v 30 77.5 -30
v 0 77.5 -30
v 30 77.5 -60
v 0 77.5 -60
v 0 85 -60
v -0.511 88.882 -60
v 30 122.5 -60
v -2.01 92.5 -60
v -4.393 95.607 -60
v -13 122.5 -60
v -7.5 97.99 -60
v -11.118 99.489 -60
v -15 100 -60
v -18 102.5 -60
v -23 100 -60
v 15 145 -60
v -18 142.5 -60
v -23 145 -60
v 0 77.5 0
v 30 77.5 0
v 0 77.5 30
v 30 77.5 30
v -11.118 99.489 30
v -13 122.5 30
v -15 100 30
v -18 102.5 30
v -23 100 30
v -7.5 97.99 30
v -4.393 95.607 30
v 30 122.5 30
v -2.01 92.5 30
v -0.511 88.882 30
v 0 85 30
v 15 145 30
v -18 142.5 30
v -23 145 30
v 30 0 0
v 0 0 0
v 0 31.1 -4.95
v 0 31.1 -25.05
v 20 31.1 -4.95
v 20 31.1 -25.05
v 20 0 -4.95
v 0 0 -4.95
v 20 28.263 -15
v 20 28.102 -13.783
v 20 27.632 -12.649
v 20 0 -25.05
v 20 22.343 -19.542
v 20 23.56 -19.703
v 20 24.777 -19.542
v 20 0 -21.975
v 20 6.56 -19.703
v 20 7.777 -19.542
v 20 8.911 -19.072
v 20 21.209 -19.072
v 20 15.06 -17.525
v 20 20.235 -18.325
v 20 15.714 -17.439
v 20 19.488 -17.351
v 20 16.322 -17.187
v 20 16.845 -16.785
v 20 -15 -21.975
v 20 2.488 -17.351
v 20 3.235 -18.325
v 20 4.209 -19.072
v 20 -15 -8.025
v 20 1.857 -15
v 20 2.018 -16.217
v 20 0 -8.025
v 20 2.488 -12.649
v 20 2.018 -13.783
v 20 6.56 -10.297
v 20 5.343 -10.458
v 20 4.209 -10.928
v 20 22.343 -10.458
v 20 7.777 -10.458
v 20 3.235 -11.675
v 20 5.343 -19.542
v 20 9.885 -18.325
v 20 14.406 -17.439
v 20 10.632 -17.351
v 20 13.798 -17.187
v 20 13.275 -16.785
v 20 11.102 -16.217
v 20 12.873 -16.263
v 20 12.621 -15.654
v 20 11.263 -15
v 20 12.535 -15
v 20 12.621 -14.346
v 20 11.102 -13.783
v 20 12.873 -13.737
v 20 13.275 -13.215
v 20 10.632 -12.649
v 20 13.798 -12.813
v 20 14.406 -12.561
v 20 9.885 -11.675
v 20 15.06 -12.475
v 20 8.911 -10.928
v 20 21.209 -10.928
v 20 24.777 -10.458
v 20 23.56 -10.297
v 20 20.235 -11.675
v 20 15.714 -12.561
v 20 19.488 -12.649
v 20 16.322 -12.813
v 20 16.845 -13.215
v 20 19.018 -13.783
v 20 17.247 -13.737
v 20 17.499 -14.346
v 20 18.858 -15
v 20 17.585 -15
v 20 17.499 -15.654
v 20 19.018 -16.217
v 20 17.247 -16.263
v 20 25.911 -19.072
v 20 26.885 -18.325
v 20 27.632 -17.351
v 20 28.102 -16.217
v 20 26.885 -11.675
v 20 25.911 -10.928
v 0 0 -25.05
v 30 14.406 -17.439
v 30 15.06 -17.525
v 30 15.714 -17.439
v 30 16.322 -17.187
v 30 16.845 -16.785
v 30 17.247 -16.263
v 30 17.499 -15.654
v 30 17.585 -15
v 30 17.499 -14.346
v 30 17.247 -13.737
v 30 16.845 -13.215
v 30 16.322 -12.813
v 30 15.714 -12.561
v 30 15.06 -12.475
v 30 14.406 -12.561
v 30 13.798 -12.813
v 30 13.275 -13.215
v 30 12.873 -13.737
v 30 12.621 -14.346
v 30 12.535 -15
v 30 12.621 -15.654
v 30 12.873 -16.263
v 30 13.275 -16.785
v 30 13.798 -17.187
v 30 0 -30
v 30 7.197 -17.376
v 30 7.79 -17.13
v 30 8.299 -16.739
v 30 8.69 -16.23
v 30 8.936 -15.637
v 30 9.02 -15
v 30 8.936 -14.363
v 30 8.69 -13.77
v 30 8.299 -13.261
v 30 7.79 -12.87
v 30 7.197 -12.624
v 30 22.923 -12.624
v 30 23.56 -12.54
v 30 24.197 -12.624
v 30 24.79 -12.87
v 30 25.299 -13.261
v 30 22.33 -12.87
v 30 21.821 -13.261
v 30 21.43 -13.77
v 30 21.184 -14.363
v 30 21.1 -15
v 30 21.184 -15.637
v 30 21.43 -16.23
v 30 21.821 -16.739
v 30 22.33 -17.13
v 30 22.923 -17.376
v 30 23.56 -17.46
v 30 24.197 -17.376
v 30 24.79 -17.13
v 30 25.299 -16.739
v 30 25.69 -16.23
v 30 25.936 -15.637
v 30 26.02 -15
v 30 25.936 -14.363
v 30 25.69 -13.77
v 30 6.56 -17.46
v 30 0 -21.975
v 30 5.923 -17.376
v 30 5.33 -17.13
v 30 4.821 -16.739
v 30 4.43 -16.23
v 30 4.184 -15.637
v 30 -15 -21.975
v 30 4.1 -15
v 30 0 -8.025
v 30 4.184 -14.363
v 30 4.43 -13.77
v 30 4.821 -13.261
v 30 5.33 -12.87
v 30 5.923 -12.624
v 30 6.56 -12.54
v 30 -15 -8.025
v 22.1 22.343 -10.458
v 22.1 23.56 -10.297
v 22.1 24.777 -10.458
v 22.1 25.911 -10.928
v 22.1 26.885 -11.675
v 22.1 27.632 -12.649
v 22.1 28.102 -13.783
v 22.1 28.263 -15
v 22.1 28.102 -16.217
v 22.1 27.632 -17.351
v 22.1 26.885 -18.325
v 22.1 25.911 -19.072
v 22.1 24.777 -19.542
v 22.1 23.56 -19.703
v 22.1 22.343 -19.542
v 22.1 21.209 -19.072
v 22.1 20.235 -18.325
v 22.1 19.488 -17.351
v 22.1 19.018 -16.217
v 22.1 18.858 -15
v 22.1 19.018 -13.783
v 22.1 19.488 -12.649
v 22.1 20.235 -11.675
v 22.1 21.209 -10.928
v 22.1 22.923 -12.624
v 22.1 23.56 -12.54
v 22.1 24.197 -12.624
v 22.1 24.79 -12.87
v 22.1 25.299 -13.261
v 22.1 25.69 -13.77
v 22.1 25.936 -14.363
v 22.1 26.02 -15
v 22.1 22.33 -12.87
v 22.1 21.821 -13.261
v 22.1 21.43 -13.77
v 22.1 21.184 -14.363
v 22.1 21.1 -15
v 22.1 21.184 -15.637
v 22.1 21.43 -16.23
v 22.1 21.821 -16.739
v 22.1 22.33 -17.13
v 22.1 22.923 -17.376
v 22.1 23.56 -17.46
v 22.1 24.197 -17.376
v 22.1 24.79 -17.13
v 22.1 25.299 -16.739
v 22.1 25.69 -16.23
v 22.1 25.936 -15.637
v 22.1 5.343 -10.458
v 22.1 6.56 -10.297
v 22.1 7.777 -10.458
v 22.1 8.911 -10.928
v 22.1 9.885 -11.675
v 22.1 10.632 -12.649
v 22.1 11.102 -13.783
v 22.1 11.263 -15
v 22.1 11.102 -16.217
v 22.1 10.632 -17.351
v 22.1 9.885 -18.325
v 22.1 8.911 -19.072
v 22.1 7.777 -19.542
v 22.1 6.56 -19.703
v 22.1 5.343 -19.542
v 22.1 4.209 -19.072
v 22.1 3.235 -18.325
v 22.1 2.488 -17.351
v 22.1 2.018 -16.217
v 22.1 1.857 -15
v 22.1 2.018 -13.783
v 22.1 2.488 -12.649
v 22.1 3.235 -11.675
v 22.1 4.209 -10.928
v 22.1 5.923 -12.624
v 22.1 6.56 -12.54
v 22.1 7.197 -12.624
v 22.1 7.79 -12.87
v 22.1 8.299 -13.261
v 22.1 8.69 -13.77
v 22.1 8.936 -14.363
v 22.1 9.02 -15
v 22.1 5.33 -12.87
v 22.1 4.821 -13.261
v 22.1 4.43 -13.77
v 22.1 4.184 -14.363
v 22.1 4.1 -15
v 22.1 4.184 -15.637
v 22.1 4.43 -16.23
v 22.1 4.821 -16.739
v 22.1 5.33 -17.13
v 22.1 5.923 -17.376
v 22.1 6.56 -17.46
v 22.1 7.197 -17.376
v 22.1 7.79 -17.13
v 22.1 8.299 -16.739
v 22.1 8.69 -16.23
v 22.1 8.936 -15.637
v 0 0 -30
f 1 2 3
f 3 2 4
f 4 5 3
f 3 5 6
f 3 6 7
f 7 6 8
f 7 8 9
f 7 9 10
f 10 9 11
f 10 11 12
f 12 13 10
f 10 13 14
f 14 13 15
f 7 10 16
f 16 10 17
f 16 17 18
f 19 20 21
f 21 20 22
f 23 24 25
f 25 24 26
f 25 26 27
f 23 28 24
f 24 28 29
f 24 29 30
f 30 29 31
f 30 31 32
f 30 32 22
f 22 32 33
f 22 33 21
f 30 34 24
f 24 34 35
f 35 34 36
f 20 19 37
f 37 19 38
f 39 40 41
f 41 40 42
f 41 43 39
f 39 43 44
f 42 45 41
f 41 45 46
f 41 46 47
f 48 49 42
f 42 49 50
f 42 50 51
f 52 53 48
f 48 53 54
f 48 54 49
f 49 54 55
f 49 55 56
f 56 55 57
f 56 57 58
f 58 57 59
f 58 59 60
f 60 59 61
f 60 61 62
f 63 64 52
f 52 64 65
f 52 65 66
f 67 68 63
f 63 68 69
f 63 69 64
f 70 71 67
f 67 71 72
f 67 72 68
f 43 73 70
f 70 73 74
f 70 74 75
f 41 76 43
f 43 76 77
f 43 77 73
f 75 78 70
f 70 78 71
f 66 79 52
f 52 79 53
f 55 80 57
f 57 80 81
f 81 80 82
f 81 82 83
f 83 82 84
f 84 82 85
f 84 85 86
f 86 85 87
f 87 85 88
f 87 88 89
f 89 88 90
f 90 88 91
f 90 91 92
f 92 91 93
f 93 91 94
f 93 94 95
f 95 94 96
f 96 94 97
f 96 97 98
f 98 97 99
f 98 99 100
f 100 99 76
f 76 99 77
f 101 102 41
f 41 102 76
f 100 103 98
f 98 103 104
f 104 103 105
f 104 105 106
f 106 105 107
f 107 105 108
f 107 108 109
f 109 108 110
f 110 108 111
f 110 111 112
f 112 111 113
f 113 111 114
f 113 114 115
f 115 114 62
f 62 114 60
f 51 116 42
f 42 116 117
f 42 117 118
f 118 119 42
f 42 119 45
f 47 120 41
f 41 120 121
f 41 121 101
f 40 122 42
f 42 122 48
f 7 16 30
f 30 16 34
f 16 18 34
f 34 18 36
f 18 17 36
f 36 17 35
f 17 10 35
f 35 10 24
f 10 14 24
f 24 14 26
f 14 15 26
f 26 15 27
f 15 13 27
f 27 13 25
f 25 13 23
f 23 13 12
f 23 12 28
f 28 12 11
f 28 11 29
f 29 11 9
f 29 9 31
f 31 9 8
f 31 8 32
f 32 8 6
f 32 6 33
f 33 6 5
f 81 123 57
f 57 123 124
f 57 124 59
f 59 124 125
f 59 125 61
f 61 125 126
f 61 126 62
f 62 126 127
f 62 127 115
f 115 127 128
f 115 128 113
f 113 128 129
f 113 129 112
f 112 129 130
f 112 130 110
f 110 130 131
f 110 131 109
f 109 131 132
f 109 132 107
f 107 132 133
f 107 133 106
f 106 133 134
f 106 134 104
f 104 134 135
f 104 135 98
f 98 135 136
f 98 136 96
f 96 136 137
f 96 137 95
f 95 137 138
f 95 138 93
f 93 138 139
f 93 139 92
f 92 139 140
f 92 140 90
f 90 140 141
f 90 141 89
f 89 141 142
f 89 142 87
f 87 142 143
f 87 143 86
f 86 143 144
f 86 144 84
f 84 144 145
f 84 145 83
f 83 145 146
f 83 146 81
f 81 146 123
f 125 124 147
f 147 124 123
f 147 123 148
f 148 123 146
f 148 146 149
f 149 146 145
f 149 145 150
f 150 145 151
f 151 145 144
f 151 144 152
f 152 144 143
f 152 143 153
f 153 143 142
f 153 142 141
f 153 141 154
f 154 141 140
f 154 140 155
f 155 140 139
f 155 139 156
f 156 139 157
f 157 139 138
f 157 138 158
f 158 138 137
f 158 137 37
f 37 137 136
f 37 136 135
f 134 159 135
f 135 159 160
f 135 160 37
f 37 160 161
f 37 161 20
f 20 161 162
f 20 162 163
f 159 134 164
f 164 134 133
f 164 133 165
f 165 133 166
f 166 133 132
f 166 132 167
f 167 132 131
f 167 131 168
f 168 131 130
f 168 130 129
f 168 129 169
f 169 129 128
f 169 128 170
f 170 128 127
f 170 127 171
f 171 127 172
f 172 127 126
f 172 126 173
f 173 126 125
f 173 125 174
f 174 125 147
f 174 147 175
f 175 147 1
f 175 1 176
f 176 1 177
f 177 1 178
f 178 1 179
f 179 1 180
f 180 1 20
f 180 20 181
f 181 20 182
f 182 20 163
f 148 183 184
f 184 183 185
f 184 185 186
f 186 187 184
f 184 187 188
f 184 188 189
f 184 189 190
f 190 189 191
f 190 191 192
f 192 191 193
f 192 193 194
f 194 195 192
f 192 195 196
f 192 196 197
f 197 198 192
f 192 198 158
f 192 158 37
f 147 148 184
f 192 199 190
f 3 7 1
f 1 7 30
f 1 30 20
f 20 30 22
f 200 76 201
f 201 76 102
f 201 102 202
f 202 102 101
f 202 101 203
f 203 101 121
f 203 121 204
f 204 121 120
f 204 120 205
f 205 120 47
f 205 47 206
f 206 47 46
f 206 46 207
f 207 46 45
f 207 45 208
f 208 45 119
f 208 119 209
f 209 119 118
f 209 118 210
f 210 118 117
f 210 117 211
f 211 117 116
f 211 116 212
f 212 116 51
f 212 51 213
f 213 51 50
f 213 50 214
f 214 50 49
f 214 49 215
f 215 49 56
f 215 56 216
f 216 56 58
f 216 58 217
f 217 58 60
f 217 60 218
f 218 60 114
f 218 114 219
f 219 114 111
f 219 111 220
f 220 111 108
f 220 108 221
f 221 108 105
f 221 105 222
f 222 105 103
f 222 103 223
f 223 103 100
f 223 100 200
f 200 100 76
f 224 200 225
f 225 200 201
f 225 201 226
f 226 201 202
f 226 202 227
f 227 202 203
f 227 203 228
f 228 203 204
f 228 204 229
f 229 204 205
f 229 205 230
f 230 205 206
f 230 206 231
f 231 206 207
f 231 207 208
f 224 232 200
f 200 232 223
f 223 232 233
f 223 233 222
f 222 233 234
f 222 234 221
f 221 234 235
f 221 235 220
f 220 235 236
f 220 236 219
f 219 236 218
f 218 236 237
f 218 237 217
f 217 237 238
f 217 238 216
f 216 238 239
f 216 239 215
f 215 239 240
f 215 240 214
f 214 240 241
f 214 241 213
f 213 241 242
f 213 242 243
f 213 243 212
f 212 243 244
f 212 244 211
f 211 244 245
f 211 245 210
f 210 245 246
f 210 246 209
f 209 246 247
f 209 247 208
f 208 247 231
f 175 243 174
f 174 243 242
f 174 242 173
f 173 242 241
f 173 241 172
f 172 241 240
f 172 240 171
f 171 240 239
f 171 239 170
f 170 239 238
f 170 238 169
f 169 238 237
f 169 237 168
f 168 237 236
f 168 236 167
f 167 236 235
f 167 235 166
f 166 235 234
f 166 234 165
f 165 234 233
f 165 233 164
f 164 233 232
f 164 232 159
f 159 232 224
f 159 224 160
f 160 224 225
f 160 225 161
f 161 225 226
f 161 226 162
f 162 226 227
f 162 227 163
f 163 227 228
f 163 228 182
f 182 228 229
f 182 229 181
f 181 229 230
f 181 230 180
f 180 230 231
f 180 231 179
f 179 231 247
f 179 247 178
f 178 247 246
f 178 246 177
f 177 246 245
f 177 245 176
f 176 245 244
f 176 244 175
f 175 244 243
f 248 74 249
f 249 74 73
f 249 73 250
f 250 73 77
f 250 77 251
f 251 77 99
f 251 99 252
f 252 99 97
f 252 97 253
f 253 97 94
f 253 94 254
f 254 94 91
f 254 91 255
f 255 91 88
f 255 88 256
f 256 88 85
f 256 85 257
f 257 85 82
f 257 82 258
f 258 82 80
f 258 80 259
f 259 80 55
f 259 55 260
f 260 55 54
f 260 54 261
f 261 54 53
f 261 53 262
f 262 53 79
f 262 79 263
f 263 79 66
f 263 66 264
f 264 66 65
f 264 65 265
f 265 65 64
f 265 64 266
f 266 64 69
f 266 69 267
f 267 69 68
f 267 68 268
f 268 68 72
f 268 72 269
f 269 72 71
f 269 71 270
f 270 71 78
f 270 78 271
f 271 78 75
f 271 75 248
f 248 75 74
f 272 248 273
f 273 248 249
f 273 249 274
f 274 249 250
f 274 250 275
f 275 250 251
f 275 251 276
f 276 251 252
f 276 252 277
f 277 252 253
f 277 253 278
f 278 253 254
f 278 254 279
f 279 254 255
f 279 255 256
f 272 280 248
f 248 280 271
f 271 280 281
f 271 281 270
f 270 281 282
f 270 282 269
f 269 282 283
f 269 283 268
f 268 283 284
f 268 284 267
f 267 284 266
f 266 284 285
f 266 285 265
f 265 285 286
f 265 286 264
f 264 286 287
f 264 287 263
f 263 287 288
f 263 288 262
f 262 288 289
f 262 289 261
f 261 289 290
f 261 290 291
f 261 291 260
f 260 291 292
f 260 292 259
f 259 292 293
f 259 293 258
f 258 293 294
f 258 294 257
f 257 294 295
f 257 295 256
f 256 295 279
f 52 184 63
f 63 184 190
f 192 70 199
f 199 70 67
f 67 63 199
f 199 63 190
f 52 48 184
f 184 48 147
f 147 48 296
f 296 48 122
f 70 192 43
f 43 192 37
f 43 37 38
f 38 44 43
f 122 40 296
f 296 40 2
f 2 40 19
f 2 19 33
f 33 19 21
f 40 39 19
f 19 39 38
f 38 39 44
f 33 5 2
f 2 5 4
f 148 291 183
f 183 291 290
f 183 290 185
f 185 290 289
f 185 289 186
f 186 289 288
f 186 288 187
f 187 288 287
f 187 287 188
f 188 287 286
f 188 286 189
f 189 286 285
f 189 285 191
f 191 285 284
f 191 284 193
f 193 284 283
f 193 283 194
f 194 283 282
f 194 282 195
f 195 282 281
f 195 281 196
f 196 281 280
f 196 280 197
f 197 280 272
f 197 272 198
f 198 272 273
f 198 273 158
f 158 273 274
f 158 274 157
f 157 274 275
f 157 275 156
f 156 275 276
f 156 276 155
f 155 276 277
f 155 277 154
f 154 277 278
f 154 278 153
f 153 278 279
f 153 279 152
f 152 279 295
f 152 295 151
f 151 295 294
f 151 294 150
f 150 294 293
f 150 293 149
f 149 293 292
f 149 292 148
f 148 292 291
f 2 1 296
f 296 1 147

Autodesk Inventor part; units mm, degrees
ref_plane "YZ Plane" through (0, 0, 0) normal (1, 0, 0) x (0, 1, 0)
ref_plane "XZ Plane" through (0, 0, 0) normal (0, 1, 0) x (-1, 0, 0)
sketch "Sketch1" plane through (0, 0, 0) normal (0, 0, 1) x (1, 0, 0)
  line L0 (0, 0) -> (25, 0)
  line L1 (25, 0) -> (25, 40)
  line L2 (25, 40) -> (0, 40)
  line L3 (0, 40) -> (0, 0)
  dimension "d1" = 25
  dimension "d2" = 40
  dimension "d3" = 25
extrude "Extrusion1" add sketch "Sketch1" against normal blind 30
sketch "Sketch2" plane through (25, 0, 0) normal (1, 0, 0) x (0, 0, -1)
  line L0 (0, 0) -> (30, 0) projected
  circle A0 centre (15, 6.56) radius 2.46
extrude "Extrusion2" cut sketch "Sketch2" against normal blind 30
sketch "Sketch3" plane through (0, 0, 0) normal (-1, 0, 0) x (0, 0, 1)
  line L0 (0, 0) -> (-30, 0) projected
  line L1 (-25.05, 0) -> (-4.95, 0)
  line L2 (-4.95, 0) -> (-4.95, 33.12)
  line L3 (-4.95, 33.12) -> (-25.05, 33.12)
  line L4 (-25.05, 33.12) -> (-25.05, 0)
  dimension "d11" = 20.1
extrude "Extrusion3" cut sketch "Sketch3" against normal blind 20
sketch "Sketch4" plane through (0, 0, 0) normal (0, -1, 0) x (1, 0, 0)
  line L0 (20, -4.95) -> (20, -25.05) projected
  line L1 (20, -15) -> (25, -15)
  line L2 (25, 0) -> (25, -30) projected
  line L3 (20, -8.025) -> (25, -8.025)
  line L4 (25, -8.025) -> (25, -21.975)
  line L5 (25, -21.975) -> (20, -21.975)
  line L6 (20, -21.975) -> (20, -8.025)
  line L7 (20, -8.025) -> (25, -21.975) construction
  line L8 (25, -8.025) -> (20, -21.975) construction
  line L9 (25, -12.54) -> (25, -17.46) projected
  point P0 (0, 0)
  point P1 (22.5, -15)
  dimension "d14" = 13.95
extrude "Extrusion4" add sketch "Sketch4" along normal blind 15
sketch "Sketch5" plane through (20, 0, 0) normal (-1, 0, 0) x (0, 0, 1)
  circle A0 centre (-15, 6.56) radius 2.46 projected
  circle A1 centre (-15, 6.56) radius 4.7025
  circle A2 centre (-15, 6.56) radius 2.46 projected
  circle A3 centre (-15, 6.56) radius 2.46
  point P0 (0, 0)
  dimension "d17" = 9.405
extrude "Extrusion5" cut sketch "Sketch5" against normal blind 2.1
sketch "Sketch6" plane through (25, 0, 0) normal (1, 0, 0) x (0, 0, -1)
  circle A0 centre (15, 6.56) radius 4.7025 projected
  line L0 (15, 6.56) -> (15, 23.56)
  circle A1 centre (15, 23.56) radius 2.46
  point P0 (0, 0)
  dimension "d20" = 17
  dimension "d21" = 4.92
extrude "Extrusion6" cut sketch "Sketch6" against normal blind 10 contours A1
sketch "Sketch7" plane through (20, 0, 0) normal (-1, 0, 0) x (0, 0, 1)
  circle A0 centre (-15, 23.56) radius 2.46 projected
  circle A1 centre (-15, 23.56) radius 4.7025
  point P0 (0, 0)
  dimension "d24" = 9.405
extrude "Extrusion7" cut sketch "Sketch7" against normal blind 2.1
sketch "Sketch9" plane through (25, 0, 0) normal (1, 0, 0) x (0, 0, -1)
  circle A0 centre (15, 6.56) radius 2.46 projected
  circle A1 centre (15, 6.56) radius 2.46
  circle A2 centre (15, 23.56) radius 2.46 projected
  circle A3 centre (15, 23.56) radius 2.46
  line L0 (30, 40) -> (30, 0) projected
  line L1 (30, 0) -> (30, 40)
  line L2 (30, 40) -> (0, 40)
  line L3 (0, 40) -> (0, 0)
  line L4 (0, 0) -> (8.025, 0) projected
  line L5 (21.975, 0) -> (21.975, -15)
  line L6 (21.975, -15) -> (8.025, -15)
  line L7 (8.025, -15) -> (8.025, 0)
  line L8 (0, 0) -> (8.025, 0)
  line L9 (21.975, 0) -> (30, 0)
extrude "Extrusion8" add sketch "Sketch9" along normal blind 5
sketch "Sketch10" plane through (0, 40, 0) normal (0, 1, 0) x (1, 0, 0)
  line L0 (0, 30) -> (30, 30) projected
  line L1 (30, 0) -> (0, 0) projected
  line L2 (0, 30) -> (30, 30)
  line L3 (30, 30) -> (30, 0)
  line L4 (30, 0) -> (0, 0)
  line L5 (0, 0) -> (0, 30)
extrude "Extrusion9" add sketch "Sketch10" along normal blind 30
sketch "Sketch12" plane through (30, 0, 0) normal (1, 0, 0) x (0, 0, -1)
  circle A0 centre (15, 6.56) radius 2.46 projected
  line L0 (15, 6.56) -> (15, 15.06)
  circle A1 centre (15, 15.06) radius 2.525
  point P0 (0, 0)
  dimension "d31" = 8.5
  dimension "d33" = 5.05
extrude "Extrusion10" cut sketch "Sketch12" against normal blind 30 contours A1
sketch "Sketch14" plane through (0, 0, 0) normal (0, 0, 1) x (1, 0, 0)
  line L0 (30, 70) -> (0, 70) projected
  line L1 (0, 70) -> (0, 85)
  line L2 (-15, 100) -> (-23, 100)
  line L3 (30, 0) -> (30, 70) projected
  line L4 (30, 122.5) -> (30, 70)
  arc A0 (0, 85) -> (-15, 100) centre (-15, 85) ccw
  line L5 (30, 105) -> (30, 100)
  line L6 (-23, 145) -> (15, 145)
  line L7 (-18, 142.5) -> (-23, 145)
  line L8 (-18, 102.5) -> (-23, 100)
  line L9 (-18, 102.5) -> (-13, 122.5)
  line L10 (-13, 122.5) -> (-18, 142.5)
  line L11 (30, 122.5) -> (15, 145)
  point P0 (0, 0)
  point P1 (0, 100)
  dimension "d47" = 30
  dimension "d54" = 15
extrude "Extrusion12" add sketch "Sketch14" against normal blind 30
sketch "Sketch15" plane through (0, 0, -25.05) normal (-1, 0, 0) x (0, 0, 1)
  line L0 (0, 33.12) -> (20.1, 33.12) projected
  line L1 (20.1, 33.12) -> (20.1, 0) projected
  line L2 (0, 33.12) -> (20.1, 33.12)
  line L3 (20.1, 33.12) -> (20.1, 31.1)
  line L4 (20.1, 31.1) -> (0, 31.1)
  line L5 (0, 31.1) -> (0, 33.12)
  point P0 (25.05, 0)
  dimension "d57" = 2.02
extrude "Extrusion13" add sketch "Sketch15" against normal blind 20
sketch "Sketch24" plane through (0, 0, 0) normal (0, 0, 1) x (1, 0, 0)
  line L0 (-15, 100) -> (-23, 100) projected
  line L1 (-15, 100) -> (-23, 100)
  line L2 (-23, 100) -> (-18, 102.5) projected
  line L3 (-23, 100) -> (-18, 102.5)
  line L4 (-18, 102.5) -> (-13, 122.5) projected
  line L5 (-18, 102.5) -> (-13, 122.5)
  line L6 (-13, 122.5) -> (-18, 142.5) projected
  line L7 (-13, 122.5) -> (-18, 142.5)
  line L8 (-18, 142.5) -> (-23, 145) projected
  line L9 (-18, 142.5) -> (-23, 145)
  line L10 (-23, 145) -> (15, 145) projected
  line L11 (-23, 145) -> (15, 145)
  line L12 (15, 145) -> (30, 122.5) projected
  line L13 (15, 145) -> (30, 122.5)
  line L14 (30, 122.5) -> (30, 77.5)
  line L15 (30, 0) -> (30, 122.5) projected
  line L16 (30, 77.5) -> (0, 77.5)
  line L17 (0, 0) -> (0, 85) projected
  line L18 (0, 77.5) -> (0, 85)
  arc A0 (0, 85) -> (-15, 100) centre (-15, 85) ccw projected
  arc A1 (0, 85) -> (-15, 100) centre (-15, 85) ccw
  dimension "d86" = 45
extrude "Extrusion14" add sketch "Sketch24" along normal blind 30
ref_plane "Work Plane1" through (0, 0, -15) normal (0, 0, 1) x (1, 0, 0)
mirror "Mirror1" about plane through (0, 0, -15) normal (0, 0, 1) of "Extrusion14"
properties part number "rec_a_40mm_x_90mm"
